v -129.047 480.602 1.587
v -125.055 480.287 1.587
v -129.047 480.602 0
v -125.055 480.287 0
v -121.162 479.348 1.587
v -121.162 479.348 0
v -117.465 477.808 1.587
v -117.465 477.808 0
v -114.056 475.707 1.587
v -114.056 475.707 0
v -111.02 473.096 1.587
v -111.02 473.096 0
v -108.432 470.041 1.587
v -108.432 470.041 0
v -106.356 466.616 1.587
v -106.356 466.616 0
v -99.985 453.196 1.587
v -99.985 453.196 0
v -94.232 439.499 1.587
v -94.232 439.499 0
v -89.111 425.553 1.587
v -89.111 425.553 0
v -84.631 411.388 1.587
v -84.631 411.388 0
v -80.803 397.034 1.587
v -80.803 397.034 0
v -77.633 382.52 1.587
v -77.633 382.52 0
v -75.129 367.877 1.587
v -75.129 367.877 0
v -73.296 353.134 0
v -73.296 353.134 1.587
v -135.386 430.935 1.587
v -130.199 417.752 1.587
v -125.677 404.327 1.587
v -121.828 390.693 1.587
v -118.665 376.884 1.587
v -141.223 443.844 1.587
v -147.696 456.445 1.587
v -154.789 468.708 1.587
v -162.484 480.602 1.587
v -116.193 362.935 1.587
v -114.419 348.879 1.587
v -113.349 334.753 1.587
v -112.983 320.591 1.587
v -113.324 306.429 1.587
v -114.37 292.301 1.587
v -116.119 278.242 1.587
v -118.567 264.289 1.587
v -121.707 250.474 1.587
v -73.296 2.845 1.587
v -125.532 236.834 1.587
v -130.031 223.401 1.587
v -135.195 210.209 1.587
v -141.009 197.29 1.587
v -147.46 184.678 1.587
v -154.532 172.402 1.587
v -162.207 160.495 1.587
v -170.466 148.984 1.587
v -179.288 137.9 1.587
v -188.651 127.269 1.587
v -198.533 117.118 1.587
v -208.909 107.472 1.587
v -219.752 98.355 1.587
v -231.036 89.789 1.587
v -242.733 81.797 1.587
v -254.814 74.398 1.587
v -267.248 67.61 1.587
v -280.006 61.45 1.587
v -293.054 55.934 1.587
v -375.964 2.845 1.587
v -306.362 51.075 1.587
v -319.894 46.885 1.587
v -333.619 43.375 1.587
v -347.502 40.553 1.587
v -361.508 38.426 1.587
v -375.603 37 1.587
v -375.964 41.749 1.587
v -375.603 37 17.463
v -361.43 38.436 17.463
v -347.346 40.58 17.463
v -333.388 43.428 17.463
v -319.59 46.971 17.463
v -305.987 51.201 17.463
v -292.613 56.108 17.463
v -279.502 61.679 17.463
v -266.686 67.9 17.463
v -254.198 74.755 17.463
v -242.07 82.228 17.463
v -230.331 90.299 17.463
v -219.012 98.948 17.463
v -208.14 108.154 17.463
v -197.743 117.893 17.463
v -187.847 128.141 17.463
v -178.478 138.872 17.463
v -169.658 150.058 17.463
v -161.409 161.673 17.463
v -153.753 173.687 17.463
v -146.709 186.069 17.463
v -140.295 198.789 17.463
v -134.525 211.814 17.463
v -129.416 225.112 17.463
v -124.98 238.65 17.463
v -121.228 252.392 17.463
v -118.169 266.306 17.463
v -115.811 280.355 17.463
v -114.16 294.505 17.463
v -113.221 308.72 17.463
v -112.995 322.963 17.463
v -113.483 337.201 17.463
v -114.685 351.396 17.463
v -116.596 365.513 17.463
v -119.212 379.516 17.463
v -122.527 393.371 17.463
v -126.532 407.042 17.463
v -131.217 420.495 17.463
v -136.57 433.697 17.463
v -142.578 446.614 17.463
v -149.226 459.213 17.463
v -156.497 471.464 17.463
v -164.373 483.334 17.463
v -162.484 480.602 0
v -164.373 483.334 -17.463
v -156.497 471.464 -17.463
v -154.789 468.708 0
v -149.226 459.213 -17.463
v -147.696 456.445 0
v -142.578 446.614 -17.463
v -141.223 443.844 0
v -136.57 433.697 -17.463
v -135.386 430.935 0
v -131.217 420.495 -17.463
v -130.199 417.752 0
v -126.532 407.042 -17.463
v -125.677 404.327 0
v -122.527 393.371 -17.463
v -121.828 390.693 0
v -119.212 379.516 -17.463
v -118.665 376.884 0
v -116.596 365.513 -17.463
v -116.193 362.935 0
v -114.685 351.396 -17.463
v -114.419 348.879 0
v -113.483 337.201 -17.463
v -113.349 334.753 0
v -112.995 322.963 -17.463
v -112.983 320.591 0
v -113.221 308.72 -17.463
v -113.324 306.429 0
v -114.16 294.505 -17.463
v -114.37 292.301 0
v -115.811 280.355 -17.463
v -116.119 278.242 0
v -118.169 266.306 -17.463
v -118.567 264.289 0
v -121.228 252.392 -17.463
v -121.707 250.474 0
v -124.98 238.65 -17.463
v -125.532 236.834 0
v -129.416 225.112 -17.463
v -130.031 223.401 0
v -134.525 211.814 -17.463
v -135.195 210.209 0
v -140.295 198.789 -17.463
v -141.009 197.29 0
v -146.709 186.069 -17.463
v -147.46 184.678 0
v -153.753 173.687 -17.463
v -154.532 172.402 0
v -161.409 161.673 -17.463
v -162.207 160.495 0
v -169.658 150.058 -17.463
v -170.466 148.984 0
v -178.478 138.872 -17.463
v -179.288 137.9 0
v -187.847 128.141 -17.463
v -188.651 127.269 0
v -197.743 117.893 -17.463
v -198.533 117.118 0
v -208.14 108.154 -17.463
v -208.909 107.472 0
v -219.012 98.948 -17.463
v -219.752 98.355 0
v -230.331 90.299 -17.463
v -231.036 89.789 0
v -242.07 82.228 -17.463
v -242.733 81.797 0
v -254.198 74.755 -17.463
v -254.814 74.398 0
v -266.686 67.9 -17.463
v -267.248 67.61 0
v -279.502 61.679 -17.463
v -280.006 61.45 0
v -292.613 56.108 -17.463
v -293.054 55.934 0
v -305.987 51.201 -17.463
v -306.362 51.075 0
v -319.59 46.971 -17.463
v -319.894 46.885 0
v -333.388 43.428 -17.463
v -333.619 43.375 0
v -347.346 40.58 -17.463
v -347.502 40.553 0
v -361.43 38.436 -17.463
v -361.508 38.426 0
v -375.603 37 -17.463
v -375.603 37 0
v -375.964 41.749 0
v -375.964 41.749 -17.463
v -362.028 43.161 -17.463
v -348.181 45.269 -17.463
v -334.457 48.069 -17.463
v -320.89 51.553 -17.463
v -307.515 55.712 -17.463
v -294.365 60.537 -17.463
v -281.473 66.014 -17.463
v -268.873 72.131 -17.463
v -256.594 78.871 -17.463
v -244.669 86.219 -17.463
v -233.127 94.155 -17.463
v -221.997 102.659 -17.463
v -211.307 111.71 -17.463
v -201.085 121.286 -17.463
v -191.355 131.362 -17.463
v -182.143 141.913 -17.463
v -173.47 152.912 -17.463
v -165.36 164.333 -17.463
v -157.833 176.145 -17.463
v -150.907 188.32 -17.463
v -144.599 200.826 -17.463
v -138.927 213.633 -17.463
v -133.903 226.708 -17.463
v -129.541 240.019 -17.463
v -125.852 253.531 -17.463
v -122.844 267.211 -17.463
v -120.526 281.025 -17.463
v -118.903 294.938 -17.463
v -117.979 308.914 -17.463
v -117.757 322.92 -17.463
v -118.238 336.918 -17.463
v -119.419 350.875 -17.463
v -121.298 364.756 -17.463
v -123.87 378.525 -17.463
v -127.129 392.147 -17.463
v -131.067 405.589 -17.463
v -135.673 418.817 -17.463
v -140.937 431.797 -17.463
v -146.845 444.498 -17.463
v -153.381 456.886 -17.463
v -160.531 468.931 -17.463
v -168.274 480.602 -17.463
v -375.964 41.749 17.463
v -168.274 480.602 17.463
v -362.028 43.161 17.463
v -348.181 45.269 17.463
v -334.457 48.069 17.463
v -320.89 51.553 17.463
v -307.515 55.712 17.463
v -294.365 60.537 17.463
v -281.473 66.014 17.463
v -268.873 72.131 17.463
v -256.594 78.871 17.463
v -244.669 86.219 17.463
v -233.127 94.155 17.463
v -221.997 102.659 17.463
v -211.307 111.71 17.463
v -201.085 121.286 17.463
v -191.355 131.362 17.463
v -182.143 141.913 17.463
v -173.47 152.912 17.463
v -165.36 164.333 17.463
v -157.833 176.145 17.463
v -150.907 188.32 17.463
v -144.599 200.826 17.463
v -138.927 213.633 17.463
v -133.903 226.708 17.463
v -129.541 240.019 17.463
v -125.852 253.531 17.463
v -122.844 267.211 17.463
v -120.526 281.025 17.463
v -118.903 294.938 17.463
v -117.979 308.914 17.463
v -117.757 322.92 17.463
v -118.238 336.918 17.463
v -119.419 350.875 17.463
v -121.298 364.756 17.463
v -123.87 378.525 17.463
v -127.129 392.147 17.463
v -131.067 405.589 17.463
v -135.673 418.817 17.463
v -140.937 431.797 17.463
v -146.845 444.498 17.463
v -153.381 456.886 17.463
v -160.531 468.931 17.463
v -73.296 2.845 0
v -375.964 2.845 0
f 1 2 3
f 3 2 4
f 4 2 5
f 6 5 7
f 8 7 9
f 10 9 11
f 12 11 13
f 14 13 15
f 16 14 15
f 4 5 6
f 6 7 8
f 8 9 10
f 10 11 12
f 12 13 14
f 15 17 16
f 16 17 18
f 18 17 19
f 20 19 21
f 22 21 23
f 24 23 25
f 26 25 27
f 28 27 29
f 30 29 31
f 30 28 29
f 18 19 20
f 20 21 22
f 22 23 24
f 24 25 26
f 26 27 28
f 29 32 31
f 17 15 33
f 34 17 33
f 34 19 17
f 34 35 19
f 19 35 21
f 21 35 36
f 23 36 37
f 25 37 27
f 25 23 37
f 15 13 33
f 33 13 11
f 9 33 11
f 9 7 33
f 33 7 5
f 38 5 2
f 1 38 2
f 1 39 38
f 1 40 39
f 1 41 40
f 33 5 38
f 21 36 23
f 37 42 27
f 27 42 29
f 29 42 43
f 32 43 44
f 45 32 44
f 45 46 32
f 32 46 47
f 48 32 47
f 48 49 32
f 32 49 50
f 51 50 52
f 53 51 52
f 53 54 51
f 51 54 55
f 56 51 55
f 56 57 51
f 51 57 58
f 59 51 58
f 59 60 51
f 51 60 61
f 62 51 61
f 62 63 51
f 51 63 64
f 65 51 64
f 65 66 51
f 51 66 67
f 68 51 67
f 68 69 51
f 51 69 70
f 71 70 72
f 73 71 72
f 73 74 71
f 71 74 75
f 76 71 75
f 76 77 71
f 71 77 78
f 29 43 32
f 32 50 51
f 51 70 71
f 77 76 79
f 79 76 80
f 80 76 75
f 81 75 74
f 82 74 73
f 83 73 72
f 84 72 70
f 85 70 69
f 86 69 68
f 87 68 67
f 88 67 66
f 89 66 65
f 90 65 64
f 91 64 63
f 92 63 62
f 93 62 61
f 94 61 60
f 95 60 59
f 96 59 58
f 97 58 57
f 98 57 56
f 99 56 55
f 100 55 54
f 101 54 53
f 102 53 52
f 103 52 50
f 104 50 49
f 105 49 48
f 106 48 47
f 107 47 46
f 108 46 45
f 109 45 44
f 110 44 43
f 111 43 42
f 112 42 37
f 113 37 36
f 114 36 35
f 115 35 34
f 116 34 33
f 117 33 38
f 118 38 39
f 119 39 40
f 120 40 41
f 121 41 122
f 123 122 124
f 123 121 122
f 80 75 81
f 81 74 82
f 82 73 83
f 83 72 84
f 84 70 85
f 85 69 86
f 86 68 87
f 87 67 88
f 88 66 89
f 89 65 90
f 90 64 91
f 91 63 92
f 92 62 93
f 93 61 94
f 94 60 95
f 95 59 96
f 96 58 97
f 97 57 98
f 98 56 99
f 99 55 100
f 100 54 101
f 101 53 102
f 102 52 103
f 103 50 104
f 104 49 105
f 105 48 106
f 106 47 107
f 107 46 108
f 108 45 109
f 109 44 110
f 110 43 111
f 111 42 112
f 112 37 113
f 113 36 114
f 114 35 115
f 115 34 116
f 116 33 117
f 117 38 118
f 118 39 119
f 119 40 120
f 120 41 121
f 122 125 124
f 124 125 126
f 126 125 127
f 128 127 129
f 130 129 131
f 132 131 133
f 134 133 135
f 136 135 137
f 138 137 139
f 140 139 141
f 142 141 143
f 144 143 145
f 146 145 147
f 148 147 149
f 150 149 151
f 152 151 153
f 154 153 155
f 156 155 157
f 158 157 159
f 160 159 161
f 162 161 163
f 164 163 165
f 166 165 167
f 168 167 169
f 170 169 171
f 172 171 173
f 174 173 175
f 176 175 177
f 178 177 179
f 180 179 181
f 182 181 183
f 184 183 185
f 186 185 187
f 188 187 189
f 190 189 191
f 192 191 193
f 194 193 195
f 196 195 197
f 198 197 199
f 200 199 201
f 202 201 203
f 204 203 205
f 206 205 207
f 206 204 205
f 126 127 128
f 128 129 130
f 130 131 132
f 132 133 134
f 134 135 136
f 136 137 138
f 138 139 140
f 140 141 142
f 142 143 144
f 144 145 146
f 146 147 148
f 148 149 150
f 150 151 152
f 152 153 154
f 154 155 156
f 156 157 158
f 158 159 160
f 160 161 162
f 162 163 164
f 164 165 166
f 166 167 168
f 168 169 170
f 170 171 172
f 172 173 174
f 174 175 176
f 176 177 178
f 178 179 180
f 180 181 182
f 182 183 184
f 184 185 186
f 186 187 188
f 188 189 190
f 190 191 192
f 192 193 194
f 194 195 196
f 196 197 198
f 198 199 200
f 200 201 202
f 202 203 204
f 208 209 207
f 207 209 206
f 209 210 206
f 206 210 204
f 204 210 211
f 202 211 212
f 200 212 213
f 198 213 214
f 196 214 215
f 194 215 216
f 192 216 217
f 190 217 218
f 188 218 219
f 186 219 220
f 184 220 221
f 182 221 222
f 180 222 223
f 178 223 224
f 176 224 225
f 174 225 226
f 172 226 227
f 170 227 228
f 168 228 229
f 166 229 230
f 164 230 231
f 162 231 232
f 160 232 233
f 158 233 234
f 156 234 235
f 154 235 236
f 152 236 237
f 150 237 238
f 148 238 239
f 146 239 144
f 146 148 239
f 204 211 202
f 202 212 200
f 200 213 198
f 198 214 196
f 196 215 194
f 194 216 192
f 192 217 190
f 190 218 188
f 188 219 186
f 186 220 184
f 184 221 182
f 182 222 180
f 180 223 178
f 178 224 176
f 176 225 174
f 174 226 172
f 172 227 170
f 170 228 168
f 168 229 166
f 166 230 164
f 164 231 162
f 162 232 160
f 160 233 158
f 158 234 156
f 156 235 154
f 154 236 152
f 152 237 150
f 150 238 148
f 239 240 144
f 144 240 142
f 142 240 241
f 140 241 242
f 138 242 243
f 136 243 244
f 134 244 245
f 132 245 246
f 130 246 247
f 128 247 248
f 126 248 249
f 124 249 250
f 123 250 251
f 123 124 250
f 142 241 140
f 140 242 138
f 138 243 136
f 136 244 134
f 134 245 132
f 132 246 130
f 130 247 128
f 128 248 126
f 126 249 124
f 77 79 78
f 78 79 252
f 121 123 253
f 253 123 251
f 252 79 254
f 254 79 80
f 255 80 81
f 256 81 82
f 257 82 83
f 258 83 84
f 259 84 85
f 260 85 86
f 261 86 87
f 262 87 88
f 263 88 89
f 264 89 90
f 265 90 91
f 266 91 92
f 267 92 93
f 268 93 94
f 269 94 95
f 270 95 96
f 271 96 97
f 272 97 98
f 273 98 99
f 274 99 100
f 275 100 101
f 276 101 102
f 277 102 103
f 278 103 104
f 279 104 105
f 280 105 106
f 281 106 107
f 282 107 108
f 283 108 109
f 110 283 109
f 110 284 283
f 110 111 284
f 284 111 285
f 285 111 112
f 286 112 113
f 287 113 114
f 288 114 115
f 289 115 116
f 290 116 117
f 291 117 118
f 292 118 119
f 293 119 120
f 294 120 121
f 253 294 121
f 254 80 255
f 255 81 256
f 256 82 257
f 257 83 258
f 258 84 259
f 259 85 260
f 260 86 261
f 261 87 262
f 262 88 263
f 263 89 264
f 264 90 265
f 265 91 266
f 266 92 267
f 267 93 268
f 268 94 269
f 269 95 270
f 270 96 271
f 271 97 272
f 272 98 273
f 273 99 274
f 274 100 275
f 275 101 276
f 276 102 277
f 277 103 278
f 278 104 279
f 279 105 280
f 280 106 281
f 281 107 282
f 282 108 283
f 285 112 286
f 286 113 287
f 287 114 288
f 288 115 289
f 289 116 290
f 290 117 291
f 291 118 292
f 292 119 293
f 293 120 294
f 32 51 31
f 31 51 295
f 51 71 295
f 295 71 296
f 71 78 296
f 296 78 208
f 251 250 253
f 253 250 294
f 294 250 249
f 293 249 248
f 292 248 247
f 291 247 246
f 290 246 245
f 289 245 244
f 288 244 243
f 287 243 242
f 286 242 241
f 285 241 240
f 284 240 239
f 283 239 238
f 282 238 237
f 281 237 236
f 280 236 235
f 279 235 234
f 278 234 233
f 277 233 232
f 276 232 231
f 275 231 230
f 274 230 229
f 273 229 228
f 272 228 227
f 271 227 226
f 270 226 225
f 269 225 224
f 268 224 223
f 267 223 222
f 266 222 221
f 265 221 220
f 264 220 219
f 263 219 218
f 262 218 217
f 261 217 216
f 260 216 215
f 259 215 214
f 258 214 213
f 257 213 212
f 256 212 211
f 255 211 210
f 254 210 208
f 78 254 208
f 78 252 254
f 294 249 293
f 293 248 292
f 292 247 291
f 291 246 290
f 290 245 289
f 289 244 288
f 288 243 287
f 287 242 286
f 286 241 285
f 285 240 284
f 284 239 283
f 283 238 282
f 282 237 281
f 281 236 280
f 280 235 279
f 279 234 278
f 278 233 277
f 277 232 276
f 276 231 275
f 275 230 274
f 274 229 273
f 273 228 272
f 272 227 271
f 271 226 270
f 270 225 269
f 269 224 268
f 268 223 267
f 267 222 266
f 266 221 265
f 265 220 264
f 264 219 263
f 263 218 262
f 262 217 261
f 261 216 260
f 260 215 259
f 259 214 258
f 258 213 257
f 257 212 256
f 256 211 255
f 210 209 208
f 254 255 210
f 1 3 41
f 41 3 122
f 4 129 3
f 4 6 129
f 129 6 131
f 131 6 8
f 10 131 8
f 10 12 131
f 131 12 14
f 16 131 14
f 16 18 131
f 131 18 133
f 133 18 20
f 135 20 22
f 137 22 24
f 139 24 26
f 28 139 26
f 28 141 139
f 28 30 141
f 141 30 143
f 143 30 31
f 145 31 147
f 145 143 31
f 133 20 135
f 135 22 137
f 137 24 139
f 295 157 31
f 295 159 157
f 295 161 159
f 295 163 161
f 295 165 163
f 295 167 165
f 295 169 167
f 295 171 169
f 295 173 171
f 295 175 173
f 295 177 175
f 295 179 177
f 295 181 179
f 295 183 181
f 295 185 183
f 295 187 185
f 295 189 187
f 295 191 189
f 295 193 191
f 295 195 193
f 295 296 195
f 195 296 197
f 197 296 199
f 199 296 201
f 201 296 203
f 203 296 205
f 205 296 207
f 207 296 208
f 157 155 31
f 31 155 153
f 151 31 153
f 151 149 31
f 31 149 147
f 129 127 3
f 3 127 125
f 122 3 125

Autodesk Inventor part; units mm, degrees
ref_plane "YZ Plane" through (0, 0, 0) normal (1, 0, 0) x (0, 1, 0)
ref_plane "XZ Plane" through (0, 0, 0) normal (0, 1, 0) x (-1, 0, 0)
ref_plane "XY Plane" through (0, 0, 0) normal (0, 0, 1) x (1, 0, 0)
sketch "Sketch1" plane through (0, 0, 0) normal (0, 0, 1) x (1, 0, 0)
  line L0 (-168.2745, 480.6024) -> (-113.8232, 480.6024)
  line L1 (-73.2956, 353.1342) -> (-73.2956, 2.8452)
  line L2 (-73.2956, 2.8452) -> (-375.9641, 2.8452)
  line L3 (-375.9641, 2.8452) -> (-375.9641, 41.7492)
  arc A0 (-375.9641, 41.7492) -> (-168.2745, 480.6024) centre (-397.1456, 320.3452) ccw
  line L4 (-168.2745, 480.6024) -> (-245.12, 590.3492) construction
  line L5 (-245.12, 590.3492) -> (-245.12, 480.6024) construction
  line L6 (-245.12, 480.6024) -> (-168.2745, 480.6024) construction
  line L7 (-117.7456, 320.3452) -> (-117.7456, 124.3972) construction
  line L8 (-397.1456, 40.9452) -> (-554.9899, 40.9452) construction
  arc A1 (-73.2956, 353.1342) -> (-113.8232, 480.6024) centre (-397.1456, 320.3452) ccw
  dimension "d4" = 279.4
  dimension "d6" = 55
  dimension "d17" = 44.45
  dimension "d22" = 38.1
extrude "Extrusion1" add sketch "Sketch1" along normal blind 1.5875
sketch "Sketch2" plane through (0, 0, 1.5875) normal (0, 0, 1) x (1, 0, 0)
  arc A0 (-375.9641, 41.7492) -> (-168.2745, 480.6024) centre (-397.1456, 320.3452) ccw projected
  arc A1 (-375.9641, 41.7492) -> (-168.2745, 480.6024) centre (-397.1456, 320.3452) ccw
  arc A2 (-375.603, 37.0004) -> (-164.3733, 483.3341) centre (-397.1456, 320.3452) ccw
  line L0 (-397.1456, 320.3452) -> (-164.3733, 483.3341)
  line L1 (-168.2745, 480.6024) -> (-164.3733, 483.3341)
  line L2 (-397.1456, 320.3452) -> (-375.603, 37.0004)
  line L3 (-375.603, 37.0004) -> (-375.9641, 41.7492)
  point P0 (0, 0)
  dimension "d21" = 4.7625
extrude "Extrusion2" add sketch "Sketch2" along normal blind 15.875 and the other way blind 19.05 contours A0 L0 A2 L2
fillet "Fillet1" radius 25.4 1 edges at (-113.8232, 480.6024, 0.7937)
properties part number "ShooterCurve" material "Aluminum-6061"
